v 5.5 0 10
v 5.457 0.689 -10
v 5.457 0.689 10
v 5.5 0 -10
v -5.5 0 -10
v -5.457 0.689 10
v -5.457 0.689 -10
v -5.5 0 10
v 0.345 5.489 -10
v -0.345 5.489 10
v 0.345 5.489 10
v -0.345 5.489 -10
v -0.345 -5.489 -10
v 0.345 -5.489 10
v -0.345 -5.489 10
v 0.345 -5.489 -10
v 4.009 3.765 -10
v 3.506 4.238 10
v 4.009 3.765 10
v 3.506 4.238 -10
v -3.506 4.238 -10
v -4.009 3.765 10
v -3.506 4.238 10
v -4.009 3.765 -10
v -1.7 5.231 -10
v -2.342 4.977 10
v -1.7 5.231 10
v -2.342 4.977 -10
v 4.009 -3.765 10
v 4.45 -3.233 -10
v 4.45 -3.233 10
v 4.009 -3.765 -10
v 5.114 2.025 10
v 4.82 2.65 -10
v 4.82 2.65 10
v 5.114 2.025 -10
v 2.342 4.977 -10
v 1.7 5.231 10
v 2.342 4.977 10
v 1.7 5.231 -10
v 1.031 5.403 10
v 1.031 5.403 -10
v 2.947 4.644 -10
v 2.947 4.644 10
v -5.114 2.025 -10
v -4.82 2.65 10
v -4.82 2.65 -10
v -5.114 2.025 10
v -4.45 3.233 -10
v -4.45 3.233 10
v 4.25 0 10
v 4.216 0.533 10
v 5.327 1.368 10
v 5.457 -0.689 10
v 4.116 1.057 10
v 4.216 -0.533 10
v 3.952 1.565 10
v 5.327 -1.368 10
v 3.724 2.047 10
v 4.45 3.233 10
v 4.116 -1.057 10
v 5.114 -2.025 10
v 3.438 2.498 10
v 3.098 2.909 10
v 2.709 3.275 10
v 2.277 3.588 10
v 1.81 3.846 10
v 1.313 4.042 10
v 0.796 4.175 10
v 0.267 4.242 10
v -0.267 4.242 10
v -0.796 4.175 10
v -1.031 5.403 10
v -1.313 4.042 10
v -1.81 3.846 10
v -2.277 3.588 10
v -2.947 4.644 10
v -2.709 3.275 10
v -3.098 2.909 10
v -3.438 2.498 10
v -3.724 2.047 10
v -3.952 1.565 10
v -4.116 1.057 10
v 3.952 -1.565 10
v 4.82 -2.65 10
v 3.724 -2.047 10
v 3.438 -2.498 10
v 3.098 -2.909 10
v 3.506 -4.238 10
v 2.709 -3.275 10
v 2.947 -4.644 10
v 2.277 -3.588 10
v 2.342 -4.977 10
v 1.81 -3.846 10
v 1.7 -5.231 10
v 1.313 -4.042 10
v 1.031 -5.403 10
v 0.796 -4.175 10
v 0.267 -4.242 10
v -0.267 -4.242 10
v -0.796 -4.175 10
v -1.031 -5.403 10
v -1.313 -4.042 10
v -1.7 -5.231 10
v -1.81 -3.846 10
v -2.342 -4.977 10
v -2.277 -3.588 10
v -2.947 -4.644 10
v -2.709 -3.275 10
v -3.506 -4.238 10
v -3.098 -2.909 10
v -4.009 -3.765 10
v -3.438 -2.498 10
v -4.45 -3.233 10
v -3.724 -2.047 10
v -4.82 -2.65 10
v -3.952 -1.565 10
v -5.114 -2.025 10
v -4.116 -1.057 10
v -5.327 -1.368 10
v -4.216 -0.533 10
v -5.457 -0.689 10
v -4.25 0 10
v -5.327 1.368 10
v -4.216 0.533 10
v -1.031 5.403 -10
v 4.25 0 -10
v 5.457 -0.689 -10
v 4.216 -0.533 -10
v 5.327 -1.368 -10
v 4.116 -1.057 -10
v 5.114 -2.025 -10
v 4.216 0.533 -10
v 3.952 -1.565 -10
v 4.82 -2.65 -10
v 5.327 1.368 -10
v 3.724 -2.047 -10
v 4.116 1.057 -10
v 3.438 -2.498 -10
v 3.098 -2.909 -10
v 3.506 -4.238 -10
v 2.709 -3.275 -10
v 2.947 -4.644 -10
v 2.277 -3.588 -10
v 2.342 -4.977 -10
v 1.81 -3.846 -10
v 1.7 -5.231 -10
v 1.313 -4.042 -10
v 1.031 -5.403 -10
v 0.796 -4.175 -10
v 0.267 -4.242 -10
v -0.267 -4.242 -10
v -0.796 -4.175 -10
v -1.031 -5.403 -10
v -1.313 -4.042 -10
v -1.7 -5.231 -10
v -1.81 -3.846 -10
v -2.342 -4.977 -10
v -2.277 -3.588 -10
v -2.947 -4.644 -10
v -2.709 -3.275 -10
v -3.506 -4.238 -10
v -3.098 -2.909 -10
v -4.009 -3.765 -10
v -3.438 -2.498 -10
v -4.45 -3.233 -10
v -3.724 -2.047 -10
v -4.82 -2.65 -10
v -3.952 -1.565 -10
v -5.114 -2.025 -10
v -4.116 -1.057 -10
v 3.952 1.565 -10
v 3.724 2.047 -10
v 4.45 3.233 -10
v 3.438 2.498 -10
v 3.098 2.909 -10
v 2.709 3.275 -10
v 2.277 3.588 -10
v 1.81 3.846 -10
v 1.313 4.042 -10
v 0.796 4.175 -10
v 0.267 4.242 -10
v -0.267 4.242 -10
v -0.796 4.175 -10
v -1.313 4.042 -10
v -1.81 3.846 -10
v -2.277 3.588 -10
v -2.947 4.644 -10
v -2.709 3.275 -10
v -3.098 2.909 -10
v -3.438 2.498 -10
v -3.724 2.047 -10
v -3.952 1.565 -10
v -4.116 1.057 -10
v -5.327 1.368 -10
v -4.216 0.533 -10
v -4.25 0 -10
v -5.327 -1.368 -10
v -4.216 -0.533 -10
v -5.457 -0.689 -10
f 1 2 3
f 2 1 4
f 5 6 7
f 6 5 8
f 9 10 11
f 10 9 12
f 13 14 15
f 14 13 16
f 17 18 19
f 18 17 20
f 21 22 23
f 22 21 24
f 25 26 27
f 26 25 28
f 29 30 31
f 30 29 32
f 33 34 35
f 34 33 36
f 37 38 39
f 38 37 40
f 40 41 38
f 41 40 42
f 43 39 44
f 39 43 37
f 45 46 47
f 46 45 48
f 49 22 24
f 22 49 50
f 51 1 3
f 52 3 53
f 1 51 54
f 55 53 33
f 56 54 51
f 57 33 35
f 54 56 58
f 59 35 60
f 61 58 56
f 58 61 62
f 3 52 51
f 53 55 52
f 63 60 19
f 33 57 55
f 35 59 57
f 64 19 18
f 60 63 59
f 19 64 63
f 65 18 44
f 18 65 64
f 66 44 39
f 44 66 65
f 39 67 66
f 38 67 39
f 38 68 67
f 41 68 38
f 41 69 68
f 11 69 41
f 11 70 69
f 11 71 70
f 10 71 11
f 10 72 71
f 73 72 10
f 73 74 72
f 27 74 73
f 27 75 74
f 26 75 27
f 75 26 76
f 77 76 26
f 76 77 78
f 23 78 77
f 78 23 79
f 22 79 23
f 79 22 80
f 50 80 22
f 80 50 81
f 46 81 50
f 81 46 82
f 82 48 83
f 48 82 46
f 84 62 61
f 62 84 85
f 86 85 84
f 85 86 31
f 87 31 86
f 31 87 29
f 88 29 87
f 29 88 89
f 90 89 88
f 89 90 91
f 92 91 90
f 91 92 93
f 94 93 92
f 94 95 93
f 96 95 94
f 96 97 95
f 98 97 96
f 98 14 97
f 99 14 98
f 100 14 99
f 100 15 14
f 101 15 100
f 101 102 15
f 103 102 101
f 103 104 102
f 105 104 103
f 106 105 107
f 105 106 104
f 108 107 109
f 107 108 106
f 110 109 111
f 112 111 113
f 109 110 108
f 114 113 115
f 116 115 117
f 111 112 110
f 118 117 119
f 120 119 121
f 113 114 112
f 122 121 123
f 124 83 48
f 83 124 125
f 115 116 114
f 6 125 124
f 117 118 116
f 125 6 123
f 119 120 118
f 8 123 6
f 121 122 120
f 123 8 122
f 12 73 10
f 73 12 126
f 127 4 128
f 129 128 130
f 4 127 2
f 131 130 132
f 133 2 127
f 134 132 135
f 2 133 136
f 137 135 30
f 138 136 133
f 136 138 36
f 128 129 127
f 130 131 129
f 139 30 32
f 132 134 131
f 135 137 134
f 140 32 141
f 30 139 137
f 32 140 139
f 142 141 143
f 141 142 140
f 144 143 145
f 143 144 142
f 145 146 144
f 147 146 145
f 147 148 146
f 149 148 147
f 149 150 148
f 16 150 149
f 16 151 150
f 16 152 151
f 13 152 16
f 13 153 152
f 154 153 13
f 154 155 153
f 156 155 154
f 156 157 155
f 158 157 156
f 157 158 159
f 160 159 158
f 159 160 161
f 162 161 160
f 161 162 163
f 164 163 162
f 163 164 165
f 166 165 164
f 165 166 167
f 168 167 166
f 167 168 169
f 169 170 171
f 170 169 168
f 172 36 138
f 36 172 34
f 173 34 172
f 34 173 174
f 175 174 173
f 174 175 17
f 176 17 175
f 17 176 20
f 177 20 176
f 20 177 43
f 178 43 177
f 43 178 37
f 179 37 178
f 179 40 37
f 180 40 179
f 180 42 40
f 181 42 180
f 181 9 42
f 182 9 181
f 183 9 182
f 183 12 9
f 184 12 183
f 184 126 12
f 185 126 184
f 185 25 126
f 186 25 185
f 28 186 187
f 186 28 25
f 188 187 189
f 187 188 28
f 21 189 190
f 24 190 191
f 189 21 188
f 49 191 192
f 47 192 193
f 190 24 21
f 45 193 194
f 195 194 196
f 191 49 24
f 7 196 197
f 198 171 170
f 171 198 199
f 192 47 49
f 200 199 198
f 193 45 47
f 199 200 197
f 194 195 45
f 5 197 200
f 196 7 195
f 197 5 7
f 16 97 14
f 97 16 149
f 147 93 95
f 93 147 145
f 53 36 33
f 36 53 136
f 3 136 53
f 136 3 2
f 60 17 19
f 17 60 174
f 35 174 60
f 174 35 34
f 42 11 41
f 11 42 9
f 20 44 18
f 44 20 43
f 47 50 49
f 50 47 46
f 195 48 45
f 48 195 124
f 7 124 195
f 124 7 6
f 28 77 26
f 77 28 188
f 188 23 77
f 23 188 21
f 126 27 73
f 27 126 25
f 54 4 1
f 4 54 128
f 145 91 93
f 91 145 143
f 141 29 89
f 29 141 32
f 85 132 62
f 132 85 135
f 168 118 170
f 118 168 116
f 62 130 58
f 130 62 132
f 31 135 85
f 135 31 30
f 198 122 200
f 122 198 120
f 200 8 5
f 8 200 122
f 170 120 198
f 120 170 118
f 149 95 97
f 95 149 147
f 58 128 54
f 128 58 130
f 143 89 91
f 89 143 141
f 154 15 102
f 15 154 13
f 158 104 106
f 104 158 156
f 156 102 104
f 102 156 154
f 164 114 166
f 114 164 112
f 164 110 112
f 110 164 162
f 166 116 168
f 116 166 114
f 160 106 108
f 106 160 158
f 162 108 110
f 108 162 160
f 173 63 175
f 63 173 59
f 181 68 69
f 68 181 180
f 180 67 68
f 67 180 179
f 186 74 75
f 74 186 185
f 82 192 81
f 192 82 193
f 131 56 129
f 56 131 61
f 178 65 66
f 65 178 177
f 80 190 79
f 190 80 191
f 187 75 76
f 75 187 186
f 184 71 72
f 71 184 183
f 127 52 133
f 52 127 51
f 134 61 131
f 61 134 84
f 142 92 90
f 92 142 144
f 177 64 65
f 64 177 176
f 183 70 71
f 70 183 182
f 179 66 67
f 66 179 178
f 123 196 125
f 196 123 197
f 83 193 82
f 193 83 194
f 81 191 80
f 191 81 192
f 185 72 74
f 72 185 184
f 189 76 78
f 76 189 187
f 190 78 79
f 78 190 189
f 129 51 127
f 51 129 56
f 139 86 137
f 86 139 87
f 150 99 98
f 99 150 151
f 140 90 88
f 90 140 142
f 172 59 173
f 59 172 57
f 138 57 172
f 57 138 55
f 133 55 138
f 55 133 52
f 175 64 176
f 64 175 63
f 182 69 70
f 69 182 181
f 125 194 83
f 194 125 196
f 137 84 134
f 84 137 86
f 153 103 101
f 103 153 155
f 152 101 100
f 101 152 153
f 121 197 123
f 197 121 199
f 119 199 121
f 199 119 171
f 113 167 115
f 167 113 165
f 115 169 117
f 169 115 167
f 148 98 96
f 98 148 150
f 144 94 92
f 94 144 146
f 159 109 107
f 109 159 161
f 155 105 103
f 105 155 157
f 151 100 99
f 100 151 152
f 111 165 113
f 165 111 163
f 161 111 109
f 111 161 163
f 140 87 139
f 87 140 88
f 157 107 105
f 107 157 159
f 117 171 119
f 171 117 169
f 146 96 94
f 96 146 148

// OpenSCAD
$fn = 50;


difference() {
	union() {
		translate(v = [0, 0, -10.0000000000]) {
			cylinder(h = 20, r = 5.5000000000);
		}
	}
	union() {
		translate(v = [0, 0, -100.0000000000]) {
			cylinder(h = 200, r = 4.2500000000);
		}
	}
}
